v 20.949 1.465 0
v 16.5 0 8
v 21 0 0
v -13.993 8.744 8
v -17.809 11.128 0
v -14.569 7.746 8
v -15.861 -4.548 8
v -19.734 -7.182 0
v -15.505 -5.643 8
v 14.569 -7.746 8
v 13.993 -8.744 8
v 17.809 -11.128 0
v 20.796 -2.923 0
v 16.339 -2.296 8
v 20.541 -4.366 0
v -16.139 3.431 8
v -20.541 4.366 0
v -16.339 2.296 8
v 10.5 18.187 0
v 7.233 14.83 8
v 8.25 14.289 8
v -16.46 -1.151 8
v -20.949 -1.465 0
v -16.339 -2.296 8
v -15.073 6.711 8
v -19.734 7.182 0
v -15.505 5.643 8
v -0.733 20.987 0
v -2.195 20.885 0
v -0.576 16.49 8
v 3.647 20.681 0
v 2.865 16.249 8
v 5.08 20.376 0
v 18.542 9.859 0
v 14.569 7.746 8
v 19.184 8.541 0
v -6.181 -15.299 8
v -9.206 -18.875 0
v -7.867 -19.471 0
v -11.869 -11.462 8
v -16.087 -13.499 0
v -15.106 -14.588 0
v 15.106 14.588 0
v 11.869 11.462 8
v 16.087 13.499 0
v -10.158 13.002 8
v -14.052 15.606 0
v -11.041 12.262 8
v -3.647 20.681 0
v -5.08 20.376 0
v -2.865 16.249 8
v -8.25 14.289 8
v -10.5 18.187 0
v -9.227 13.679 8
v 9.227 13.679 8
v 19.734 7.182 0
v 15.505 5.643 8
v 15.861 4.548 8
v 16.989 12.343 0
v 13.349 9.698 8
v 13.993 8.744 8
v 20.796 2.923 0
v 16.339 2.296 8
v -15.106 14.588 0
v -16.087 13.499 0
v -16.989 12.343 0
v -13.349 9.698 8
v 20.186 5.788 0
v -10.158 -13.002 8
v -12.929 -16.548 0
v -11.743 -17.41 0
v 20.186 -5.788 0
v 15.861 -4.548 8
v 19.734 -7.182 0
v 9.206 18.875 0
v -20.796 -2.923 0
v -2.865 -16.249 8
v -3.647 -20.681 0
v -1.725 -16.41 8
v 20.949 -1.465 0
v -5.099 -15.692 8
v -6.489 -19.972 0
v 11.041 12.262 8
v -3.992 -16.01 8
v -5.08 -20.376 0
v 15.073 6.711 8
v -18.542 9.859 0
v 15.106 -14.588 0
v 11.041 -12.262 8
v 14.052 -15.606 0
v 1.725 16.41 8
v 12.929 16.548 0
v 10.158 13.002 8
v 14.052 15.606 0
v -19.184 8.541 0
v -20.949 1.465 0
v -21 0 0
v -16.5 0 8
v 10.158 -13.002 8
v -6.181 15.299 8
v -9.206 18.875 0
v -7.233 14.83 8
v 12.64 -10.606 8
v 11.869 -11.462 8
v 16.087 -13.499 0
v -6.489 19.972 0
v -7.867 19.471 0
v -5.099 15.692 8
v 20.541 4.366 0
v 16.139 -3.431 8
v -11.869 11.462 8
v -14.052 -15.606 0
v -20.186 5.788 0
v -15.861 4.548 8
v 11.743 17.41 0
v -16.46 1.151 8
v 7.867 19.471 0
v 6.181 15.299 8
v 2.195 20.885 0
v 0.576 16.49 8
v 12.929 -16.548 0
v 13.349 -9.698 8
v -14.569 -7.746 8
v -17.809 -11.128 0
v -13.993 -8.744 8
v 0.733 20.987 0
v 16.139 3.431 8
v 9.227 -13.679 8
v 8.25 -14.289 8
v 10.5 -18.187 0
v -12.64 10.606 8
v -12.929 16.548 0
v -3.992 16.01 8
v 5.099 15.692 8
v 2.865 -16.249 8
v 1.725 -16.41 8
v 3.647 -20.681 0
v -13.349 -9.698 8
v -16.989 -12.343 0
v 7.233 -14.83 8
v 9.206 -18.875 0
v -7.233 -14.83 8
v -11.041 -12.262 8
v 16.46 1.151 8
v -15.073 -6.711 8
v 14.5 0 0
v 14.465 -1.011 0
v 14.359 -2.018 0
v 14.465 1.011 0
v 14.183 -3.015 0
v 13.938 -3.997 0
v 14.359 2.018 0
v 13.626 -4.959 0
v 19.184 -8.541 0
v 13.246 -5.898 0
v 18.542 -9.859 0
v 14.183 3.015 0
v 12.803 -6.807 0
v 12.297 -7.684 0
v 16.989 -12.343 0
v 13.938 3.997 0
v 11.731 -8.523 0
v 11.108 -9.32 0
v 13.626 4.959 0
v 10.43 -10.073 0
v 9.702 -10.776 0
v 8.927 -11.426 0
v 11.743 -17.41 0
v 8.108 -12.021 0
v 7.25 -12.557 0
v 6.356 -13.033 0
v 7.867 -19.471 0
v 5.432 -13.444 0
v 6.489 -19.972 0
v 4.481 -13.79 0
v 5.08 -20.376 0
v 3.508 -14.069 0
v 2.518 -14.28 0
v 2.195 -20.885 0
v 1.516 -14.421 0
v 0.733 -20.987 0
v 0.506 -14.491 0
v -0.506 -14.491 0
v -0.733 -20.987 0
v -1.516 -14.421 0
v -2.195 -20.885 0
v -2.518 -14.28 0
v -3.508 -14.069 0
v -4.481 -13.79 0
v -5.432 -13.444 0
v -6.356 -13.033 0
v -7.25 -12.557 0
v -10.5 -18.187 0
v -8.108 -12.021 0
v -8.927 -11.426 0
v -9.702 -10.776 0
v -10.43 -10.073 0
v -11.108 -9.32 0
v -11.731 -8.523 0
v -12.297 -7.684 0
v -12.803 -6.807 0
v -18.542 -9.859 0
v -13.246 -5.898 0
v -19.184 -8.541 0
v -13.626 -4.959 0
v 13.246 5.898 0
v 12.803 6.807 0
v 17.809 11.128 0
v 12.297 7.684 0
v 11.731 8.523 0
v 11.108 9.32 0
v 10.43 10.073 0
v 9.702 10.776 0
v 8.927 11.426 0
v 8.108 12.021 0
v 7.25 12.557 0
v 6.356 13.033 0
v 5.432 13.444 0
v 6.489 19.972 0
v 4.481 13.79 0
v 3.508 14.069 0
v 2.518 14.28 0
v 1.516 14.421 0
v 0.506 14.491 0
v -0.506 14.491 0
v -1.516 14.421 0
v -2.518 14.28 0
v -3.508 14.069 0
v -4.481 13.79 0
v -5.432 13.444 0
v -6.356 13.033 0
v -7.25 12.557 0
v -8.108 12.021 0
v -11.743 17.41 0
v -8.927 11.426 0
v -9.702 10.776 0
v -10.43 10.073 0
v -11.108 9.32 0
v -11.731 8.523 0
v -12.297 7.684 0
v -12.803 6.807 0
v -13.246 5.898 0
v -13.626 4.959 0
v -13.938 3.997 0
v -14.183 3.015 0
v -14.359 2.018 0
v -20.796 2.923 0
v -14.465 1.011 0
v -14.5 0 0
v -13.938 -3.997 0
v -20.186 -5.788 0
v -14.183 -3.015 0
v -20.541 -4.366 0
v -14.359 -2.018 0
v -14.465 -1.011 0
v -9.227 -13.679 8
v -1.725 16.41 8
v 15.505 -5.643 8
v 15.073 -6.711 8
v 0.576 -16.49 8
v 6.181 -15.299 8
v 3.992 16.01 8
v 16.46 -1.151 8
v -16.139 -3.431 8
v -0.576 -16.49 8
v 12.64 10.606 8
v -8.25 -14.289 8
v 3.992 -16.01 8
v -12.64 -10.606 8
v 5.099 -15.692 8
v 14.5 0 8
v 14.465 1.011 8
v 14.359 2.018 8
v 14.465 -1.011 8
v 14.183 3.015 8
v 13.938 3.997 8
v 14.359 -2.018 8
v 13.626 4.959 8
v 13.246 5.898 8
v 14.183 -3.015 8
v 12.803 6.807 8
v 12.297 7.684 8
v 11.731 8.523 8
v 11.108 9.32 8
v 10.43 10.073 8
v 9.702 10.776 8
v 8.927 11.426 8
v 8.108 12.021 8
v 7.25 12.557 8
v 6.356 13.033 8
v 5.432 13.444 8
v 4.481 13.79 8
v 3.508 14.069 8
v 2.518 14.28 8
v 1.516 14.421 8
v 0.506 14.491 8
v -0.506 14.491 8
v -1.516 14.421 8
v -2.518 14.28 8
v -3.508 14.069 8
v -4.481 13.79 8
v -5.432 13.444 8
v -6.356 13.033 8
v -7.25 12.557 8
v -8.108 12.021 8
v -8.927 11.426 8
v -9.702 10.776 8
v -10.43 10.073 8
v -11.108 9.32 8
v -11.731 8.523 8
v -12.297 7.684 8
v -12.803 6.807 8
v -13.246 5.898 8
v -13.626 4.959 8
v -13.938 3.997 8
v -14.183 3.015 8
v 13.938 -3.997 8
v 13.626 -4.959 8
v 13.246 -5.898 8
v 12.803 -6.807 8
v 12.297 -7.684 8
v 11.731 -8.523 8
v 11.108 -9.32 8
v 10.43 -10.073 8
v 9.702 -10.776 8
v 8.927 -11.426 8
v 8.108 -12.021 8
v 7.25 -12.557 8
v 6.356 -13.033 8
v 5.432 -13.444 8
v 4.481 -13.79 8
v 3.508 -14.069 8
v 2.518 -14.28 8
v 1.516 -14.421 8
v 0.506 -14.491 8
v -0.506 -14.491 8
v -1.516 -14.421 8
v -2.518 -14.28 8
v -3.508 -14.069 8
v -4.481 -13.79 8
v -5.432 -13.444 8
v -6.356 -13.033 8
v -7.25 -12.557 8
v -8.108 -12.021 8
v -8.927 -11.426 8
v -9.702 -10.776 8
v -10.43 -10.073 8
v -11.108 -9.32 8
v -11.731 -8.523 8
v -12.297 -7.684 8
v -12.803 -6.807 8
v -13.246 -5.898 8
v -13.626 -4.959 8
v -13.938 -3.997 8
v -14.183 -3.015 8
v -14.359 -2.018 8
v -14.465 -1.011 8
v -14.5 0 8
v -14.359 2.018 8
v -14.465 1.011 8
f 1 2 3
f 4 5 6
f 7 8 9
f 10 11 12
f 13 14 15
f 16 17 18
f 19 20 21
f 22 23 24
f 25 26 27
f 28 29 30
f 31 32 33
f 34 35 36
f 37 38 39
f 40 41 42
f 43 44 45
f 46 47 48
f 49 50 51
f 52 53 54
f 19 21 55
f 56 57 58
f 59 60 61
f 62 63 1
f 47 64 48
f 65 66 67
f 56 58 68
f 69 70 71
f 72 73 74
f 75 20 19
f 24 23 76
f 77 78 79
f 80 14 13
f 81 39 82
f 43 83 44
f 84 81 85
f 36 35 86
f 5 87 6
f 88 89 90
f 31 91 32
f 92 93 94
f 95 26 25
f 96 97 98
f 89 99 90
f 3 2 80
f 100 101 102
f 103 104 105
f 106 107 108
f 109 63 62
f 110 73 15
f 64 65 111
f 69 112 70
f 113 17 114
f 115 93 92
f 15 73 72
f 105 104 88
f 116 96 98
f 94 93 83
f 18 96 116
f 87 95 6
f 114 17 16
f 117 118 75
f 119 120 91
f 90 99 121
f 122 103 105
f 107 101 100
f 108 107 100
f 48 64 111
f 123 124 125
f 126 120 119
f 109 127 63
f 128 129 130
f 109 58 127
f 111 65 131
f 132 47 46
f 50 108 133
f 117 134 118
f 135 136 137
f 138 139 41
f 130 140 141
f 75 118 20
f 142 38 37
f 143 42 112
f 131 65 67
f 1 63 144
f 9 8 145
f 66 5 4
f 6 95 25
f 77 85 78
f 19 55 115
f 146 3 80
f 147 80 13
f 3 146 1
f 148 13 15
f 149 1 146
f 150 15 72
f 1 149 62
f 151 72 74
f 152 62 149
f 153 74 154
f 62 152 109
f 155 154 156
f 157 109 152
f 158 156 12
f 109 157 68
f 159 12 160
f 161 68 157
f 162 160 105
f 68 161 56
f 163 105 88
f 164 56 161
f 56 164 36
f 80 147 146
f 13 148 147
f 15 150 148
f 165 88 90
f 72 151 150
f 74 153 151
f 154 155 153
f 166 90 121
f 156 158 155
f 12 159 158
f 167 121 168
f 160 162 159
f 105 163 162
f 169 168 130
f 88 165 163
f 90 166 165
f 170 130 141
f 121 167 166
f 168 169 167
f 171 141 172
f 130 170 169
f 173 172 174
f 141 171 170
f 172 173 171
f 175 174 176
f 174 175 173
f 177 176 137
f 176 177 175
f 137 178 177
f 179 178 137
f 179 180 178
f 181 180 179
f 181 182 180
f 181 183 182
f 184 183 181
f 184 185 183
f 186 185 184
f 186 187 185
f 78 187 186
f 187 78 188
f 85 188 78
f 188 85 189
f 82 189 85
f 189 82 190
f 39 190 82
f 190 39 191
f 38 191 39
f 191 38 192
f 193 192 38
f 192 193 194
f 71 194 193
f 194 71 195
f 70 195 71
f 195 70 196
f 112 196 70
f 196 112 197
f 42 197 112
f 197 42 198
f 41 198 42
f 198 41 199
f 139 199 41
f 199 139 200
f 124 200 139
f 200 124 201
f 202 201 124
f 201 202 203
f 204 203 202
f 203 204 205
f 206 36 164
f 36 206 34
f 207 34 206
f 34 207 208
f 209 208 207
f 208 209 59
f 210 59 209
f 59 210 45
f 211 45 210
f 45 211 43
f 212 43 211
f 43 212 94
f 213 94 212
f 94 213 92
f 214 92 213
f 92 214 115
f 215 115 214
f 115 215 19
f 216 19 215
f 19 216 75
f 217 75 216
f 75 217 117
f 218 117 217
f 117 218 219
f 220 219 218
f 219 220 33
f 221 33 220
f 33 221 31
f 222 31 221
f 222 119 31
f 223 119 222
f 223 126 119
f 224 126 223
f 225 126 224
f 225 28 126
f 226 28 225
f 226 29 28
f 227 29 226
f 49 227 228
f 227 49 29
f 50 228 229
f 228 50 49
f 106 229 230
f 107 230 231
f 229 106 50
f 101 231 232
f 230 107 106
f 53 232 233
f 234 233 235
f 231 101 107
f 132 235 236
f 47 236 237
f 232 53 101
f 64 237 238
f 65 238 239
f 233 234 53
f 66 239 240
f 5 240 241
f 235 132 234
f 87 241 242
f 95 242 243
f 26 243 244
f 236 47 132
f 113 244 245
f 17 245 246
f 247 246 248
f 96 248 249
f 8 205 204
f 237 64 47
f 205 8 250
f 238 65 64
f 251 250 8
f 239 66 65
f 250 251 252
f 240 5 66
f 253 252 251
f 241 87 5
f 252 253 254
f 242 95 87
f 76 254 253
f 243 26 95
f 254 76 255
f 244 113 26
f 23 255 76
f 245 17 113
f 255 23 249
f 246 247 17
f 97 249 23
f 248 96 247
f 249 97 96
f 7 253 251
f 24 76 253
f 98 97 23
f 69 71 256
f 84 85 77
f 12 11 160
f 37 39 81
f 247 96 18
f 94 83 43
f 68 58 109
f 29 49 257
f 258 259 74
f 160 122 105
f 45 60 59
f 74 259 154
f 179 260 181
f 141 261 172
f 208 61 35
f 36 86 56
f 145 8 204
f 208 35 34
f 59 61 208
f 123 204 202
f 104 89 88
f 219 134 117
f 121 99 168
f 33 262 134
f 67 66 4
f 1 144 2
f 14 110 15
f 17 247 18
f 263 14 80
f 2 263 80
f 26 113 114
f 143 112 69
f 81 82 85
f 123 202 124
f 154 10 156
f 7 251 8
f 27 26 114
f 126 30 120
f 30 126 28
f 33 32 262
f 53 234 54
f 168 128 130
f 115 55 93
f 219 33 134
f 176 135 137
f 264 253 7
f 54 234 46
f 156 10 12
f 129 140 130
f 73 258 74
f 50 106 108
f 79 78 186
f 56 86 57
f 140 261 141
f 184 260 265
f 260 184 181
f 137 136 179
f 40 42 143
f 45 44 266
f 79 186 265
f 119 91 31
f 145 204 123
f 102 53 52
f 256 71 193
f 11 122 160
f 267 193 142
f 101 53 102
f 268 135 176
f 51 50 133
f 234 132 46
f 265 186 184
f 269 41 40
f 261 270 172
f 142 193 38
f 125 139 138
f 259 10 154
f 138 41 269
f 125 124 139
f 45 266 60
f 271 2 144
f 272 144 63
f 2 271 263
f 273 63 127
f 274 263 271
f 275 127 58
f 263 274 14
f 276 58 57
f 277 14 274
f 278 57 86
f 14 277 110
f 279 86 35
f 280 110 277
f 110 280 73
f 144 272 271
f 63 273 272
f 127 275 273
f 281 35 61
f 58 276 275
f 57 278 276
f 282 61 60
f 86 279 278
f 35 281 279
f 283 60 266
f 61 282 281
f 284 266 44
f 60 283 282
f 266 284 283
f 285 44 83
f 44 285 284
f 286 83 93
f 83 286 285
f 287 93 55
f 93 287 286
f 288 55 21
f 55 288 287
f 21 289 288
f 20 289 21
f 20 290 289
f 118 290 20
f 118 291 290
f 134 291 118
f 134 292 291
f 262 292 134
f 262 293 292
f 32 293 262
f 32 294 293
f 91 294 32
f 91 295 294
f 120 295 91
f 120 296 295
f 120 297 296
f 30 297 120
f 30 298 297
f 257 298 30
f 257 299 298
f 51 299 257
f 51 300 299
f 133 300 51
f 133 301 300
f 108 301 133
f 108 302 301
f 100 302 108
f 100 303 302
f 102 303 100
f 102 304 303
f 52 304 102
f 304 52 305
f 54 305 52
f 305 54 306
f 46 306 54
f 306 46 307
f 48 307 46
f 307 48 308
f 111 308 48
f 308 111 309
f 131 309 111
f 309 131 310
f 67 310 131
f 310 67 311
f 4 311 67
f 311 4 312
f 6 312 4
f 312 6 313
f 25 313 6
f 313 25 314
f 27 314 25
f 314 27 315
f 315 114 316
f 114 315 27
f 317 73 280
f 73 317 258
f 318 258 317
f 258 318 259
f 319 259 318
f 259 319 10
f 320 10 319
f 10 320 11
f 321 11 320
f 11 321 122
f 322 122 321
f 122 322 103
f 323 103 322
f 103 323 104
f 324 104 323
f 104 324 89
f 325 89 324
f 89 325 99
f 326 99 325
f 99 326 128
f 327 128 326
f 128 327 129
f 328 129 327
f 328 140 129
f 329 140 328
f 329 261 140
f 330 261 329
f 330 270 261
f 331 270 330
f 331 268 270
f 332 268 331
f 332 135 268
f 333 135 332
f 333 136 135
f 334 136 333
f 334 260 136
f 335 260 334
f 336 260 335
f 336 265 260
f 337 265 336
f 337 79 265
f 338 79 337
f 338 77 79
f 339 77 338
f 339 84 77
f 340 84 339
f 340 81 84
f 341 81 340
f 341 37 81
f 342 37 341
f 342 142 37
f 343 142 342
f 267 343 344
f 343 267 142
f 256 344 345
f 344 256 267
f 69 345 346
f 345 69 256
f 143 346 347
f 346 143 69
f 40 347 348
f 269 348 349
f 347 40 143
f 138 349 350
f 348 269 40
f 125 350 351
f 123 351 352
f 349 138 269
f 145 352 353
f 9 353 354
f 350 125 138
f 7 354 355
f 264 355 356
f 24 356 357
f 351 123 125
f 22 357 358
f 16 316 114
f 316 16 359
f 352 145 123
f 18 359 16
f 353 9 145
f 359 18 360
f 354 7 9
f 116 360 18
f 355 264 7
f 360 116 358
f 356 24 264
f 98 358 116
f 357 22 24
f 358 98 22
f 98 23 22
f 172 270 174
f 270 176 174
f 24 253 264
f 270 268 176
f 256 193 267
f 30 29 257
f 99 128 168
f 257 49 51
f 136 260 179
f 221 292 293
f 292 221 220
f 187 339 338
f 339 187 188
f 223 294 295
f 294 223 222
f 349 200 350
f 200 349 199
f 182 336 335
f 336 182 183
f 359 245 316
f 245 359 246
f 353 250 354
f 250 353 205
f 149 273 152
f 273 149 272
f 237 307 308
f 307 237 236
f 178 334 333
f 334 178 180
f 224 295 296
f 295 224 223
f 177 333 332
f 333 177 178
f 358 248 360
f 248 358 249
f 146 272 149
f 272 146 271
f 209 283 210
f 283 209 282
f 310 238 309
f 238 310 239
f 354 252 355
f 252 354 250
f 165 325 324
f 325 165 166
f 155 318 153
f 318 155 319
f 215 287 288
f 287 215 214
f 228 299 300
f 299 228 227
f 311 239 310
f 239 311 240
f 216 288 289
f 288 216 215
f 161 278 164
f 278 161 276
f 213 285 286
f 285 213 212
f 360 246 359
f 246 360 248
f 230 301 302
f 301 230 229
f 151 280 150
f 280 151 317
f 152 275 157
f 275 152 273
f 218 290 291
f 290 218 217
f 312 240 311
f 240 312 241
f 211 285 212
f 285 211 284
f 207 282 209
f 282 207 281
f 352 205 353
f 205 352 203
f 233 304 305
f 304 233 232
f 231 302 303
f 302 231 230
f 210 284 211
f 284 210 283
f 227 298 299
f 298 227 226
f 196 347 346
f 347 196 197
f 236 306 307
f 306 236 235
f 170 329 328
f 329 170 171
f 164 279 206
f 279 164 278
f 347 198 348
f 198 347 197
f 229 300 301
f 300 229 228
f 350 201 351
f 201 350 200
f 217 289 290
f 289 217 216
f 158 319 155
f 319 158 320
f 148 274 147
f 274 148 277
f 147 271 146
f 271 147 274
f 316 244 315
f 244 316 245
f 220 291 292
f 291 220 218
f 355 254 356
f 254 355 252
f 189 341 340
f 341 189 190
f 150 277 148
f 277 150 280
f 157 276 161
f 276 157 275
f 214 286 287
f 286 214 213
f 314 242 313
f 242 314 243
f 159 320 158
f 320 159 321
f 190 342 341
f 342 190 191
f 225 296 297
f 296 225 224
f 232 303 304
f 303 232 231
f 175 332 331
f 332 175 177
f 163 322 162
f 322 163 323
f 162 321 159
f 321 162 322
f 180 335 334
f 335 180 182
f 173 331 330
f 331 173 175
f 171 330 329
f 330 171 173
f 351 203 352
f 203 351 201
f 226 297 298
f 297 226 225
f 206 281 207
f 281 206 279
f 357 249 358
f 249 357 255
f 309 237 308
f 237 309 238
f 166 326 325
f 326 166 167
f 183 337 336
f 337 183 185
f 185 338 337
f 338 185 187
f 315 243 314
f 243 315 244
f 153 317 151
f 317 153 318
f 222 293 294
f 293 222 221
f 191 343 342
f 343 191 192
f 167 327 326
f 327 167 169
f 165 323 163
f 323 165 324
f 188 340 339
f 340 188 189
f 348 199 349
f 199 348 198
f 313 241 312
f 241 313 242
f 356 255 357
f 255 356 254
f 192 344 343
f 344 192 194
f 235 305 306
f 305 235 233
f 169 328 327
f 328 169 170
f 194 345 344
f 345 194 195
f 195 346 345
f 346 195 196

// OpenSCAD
base_d = 42;
top_d = 33;
inner_d = 29;

space = 8; 

over = 1;

$fn=90;

difference() {
  cylinder(h=space, d1=base_d, d2 = top_d);
  translate([0,0,-over]) cylinder(d=inner_d, h = space+2*over);
}
